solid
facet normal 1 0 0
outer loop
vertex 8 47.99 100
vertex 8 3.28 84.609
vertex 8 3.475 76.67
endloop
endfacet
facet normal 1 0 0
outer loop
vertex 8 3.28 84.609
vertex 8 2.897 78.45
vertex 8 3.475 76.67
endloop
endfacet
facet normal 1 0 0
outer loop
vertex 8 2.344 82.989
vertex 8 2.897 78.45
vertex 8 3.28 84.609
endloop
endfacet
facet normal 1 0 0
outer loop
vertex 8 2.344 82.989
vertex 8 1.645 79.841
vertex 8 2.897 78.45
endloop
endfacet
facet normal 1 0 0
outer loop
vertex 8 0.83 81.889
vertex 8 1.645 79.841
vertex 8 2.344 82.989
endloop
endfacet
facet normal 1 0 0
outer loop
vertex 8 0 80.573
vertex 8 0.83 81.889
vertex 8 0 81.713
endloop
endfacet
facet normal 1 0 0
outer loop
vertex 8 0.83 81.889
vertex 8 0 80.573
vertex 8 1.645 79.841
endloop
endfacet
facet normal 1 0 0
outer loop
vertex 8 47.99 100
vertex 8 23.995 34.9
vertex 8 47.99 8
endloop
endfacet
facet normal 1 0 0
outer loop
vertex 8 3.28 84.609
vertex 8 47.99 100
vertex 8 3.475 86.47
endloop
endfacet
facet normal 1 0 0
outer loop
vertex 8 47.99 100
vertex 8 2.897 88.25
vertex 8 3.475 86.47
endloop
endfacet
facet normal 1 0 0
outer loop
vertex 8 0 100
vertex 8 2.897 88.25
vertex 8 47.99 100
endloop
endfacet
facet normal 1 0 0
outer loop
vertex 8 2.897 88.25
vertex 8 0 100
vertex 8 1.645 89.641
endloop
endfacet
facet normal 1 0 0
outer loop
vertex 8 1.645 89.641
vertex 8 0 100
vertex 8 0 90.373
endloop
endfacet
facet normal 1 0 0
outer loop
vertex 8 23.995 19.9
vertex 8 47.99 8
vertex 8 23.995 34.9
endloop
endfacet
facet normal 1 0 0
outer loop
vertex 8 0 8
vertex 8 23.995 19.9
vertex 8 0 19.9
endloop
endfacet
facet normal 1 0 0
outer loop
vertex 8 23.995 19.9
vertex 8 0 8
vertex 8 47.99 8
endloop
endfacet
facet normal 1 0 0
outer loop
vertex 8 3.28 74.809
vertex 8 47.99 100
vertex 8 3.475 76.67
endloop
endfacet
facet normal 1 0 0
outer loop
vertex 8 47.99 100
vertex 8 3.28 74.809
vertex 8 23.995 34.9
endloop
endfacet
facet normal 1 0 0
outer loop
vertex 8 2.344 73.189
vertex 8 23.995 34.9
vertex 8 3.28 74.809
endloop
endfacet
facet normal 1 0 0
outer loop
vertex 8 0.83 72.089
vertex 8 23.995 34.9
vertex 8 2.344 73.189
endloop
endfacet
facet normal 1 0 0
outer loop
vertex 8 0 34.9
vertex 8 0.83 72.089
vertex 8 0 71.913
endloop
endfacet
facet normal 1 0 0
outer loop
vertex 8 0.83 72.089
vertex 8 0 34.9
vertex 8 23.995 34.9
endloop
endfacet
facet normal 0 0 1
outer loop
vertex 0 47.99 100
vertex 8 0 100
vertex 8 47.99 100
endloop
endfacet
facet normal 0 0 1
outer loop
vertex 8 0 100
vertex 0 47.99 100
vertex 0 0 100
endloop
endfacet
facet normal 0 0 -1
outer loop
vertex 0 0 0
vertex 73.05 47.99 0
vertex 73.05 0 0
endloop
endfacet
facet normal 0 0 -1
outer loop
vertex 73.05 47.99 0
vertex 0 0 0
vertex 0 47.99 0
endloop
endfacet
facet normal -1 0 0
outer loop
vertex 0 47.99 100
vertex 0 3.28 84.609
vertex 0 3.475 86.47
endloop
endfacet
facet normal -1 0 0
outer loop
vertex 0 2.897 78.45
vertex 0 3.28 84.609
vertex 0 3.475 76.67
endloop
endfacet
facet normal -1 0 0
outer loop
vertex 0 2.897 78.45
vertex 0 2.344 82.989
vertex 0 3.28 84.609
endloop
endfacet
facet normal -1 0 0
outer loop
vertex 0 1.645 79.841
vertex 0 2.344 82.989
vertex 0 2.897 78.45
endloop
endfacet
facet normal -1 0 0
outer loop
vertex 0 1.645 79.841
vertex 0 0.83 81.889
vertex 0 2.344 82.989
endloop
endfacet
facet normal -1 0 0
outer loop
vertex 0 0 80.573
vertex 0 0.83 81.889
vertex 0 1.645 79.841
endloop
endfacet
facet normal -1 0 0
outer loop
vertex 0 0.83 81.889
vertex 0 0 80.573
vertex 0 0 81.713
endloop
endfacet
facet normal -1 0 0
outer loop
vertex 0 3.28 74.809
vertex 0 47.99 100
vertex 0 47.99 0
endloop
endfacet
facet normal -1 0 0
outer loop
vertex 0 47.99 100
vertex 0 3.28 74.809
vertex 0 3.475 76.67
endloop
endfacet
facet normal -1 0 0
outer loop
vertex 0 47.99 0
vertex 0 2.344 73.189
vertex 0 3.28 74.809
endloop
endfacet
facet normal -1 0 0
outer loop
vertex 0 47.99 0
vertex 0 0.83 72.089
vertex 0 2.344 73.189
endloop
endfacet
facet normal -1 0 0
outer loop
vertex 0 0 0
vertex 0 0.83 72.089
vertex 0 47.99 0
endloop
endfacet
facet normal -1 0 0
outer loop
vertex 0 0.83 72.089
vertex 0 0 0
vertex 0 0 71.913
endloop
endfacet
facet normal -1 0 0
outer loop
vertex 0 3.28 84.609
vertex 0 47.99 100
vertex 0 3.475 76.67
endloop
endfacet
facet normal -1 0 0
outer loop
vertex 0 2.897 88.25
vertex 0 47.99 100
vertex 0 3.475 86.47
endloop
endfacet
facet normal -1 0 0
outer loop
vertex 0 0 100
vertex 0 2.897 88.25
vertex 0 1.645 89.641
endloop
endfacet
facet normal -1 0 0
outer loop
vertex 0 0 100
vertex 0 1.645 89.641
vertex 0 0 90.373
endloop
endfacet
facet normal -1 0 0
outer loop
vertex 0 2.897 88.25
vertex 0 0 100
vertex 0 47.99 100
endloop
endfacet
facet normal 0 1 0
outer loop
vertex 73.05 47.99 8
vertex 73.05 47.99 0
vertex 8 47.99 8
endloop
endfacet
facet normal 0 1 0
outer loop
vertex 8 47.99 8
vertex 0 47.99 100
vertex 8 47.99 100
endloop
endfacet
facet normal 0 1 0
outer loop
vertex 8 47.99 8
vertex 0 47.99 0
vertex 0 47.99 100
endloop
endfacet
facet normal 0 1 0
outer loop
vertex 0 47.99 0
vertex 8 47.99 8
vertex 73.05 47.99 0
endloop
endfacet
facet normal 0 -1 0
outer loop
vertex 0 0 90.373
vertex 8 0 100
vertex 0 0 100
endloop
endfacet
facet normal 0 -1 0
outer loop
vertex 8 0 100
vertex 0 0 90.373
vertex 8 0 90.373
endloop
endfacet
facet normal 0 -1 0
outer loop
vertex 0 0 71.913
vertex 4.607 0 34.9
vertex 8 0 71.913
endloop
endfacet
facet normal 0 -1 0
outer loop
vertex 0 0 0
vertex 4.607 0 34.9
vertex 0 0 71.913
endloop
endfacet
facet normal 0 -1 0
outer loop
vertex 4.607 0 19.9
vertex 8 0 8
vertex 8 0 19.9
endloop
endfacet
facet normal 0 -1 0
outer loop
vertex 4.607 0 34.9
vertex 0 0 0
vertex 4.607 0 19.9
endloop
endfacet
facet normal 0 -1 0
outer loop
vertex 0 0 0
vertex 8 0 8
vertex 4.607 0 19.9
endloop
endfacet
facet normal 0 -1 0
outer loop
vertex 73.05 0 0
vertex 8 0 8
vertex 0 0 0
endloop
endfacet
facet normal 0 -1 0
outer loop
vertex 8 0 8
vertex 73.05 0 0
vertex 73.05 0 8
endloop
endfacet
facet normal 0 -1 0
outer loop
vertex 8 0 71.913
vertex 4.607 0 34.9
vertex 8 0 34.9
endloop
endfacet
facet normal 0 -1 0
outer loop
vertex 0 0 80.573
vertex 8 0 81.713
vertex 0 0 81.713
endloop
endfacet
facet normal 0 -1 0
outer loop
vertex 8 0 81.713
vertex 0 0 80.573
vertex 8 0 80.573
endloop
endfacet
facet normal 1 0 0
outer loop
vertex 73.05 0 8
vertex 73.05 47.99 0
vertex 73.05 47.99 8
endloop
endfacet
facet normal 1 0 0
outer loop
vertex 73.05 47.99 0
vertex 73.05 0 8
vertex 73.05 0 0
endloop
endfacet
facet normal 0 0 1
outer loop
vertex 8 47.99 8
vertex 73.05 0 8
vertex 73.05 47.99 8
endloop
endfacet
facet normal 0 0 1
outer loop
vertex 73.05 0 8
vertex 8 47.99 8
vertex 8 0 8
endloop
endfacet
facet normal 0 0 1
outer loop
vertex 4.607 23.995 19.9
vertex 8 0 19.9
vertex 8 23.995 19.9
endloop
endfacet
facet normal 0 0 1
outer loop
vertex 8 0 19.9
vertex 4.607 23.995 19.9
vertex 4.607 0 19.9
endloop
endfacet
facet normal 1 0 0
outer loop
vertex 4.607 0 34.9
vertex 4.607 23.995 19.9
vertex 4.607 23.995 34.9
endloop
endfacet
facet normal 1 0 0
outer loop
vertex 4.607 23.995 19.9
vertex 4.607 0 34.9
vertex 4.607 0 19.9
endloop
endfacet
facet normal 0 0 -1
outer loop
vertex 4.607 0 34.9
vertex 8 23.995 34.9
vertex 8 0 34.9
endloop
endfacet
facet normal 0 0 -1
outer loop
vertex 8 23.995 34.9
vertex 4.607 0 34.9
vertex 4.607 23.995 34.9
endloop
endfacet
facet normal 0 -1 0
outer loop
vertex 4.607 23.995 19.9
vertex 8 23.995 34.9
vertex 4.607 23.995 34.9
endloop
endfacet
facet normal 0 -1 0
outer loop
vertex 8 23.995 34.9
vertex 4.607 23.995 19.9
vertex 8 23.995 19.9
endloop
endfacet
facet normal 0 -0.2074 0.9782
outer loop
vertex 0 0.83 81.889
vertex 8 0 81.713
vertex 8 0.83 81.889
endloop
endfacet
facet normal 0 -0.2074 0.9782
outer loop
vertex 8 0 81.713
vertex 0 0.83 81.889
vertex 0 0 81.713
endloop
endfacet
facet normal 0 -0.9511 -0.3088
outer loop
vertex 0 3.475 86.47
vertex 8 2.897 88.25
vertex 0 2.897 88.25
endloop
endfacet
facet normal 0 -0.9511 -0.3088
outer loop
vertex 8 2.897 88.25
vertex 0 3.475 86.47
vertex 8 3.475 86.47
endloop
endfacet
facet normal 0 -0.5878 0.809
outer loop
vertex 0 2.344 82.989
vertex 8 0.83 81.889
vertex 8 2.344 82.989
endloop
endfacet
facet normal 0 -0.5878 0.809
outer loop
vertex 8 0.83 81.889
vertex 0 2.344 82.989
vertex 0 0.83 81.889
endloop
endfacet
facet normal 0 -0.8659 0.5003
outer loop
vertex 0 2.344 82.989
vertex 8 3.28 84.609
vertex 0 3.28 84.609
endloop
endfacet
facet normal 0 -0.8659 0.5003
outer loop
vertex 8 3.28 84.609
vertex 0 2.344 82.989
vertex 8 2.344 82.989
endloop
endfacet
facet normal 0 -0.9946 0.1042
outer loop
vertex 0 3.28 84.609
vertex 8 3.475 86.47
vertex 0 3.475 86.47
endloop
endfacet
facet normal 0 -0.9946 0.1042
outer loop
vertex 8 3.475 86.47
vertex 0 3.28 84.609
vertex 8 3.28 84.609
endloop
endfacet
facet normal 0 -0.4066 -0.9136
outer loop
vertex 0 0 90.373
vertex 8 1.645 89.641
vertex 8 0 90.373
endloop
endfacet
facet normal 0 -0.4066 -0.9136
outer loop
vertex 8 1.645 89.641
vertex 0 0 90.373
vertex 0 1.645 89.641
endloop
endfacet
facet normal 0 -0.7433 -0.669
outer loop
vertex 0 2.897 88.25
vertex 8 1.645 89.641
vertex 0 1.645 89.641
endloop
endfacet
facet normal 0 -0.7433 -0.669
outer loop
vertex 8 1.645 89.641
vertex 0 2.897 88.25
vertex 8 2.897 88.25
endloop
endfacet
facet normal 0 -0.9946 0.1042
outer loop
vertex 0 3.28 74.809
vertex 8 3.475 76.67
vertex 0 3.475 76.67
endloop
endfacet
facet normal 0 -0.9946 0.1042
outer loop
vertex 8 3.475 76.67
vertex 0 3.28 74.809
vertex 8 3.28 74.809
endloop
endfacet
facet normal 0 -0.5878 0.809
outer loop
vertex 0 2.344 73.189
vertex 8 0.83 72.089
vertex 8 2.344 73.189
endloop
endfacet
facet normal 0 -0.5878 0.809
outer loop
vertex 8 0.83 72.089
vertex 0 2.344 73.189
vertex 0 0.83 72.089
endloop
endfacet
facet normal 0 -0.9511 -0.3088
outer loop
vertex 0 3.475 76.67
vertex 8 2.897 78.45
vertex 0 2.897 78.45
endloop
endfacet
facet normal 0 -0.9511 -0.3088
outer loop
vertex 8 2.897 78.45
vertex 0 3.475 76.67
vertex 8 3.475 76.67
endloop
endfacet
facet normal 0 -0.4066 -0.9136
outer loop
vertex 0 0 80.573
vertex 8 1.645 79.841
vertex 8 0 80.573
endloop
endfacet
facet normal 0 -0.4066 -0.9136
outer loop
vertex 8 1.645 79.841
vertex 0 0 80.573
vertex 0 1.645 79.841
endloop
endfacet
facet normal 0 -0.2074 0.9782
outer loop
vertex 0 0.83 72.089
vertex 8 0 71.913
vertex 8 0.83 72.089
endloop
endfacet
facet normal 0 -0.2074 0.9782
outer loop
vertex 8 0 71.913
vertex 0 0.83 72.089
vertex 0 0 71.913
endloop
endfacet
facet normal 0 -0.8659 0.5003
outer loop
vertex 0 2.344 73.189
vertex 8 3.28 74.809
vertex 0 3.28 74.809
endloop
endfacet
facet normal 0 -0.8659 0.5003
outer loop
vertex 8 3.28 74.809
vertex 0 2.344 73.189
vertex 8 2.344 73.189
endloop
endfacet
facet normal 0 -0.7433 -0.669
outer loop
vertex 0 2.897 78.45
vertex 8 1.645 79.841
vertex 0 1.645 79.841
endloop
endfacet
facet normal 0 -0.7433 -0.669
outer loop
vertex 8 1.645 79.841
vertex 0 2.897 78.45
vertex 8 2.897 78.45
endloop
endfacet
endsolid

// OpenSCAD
/* doodle-meta {"version":1,"parameters":{"width":{"label":"Overall width","description":"Changes the body width","unit":"mm","feature":"body_width"},"depth":{"label":"Overall depth","description":"Changes the body depth","unit":"mm","feature":"body_depth"},"height":{"label":"Overall height","description":"Changes the body height","unit":"mm","feature":"body_height"},"backplate_thickness":{"label":"Backplate thickness","description":"Thickness of the vertical backplate","unit":"mm","feature":"backplate"},"base_thickness":{"label":"Base thickness","description":"Thickness of the horizontal base flange","unit":"mm","feature":"base"},"cutout_rect_w":{"label":"Rect cutout width","description":"Width of the top-left rectangular cutout","unit":"mm","feature":"cutout_rect"},"cutout_rect_h":{"label":"Rect cutout height","description":"Height of the top-left rectangular cutout","unit":"mm","feature":"cutout_rect"},"cutout_slot_w":{"label":"Slot width","description":"Width of the vertical slot cutouts","unit":"mm","feature":"cutout_slot"},"cutout_slot_h_top":{"label":"Top slot height","description":"Height of the top-middle slot cutout","unit":"mm","feature":"cutout_slot"},"cutout_slot_h_bot":{"label":"Bottom slot height","description":"Height of the bottom slot cutouts","unit":"mm","feature":"cutout_slot"}},"features":{"body_width":{"kind":"dimension","axis":"x","label":"Overall width"},"body_depth":{"kind":"dimension","axis":"y","label":"Overall depth"},"body_height":{"kind":"dimension","axis":"z","label":"Overall height"},"backplate":{"kind":"region","label":"Vertical backplate","min":[0,0,0],"max":[{"parameter":"backplate_thickness"},{"parameter":"depth"},{"parameter":"height"}]},"base":{"kind":"region","label":"Horizontal base","min":[0,0,0],"max":[{"parameter":"width"},{"parameter":"depth"},{"parameter":"base_thickness"}]},"cutout_rect":{"kind":"region","label":"Top-left rectangle cutout","min":[{"parameter":"width","scale":0.063,"offset":0},{"parameter":"backplate_thickness","offset":-1},{"parameter":"height","scale":0.214,"offset":0}],"max":[{"parameter":"width","scale":0.263,"offset":0},{"parameter":"backplate_thickness","offset":1},{"parameter":"height","scale":0.364,"offset":0}]},"cutout_slot":{"kind":"region","label":"Slot cutouts","min":[{"parameter":"width","scale":0.113,"offset":0},{"parameter":"backplate_thickness","offset":-1},{"parameter":"height","scale":0.088,"offset":0}],"max":[{"parameter":"width","scale":0.838,"offset":0},{"parameter":"backplate_thickness","offset":1},{"parameter":"height","scale":0.866,"offset":0}]}}} */

// --- Parameters ---
width = 73.05;
depth = 47.99;
height = 100.0;
backplate_thickness = 8.0;
base_thickness = 8.0;

// Cutout dimensions (derived from normalized view measurements)
cutout_rect_w = 14.6;
cutout_rect_h = 15.0;
cutout_slot_w = 9.0;
cutout_slot_h_top = 36.0;
cutout_slot_h_bot = 44.0;

// Cutout centers (derived from evaluation missing centroids)
// Front view mapping: X = u * width, Z = (1 - v) * height
rect_cx = 0.163 * width;
rect_cz = (1.0 - 0.726) * height;

slot_top_cx = 0.788 * width;
slot_top_cz = (1.0 - 0.69) * height;

slot_bl_cx = 0.259 * width;
slot_bl_cz = (1.0 - 0.14) * height;

slot_br_cx = 0.561 * width;
slot_br_cz = (1.0 - 0.238) * height;

// --- Modules ---
// Vertical slot (stadium) centered at (cx, cz) in XZ plane, cutting through X (the backplate).
module slot_cutter(w, h, cx, cz) {
    r = w / 2;
    straight = h - w;
    translate([cx, -1, cz])
        rotate([0, 90, 0])
            hull() {
                translate([0, 0,  straight/2]) cylinder(r=r, h=depth+2, center=true);
                translate([0, 0, -straight/2]) cylinder(r=r, h=depth+2, center=true);
            }
}

// Rectangle centered at (cx, cz) in XZ plane, cutting through X (the backplate).
module rect_cutter(w, h, cx, cz) {
    translate([cx, -1, cz])
        rotate([0, 90, 0])
            cube([h, depth + 2, w], center=true);
}

// --- Main Design ---
difference() {
    // 1. Positive Body: L-Shape
    union() {
        // Vertical Backplate (Left side, full height)
        cube([backplate_thickness, depth, height]);
        // Horizontal Base (Bottom, extending right)
        cube([width, depth, base_thickness]);
    }

    // 2. Subtractive Cutouts (Through the backplate, along X)
    rect_cutter(cutout_rect_w, cutout_rect_h, rect_cx, rect_cz);
    slot_cutter(cutout_slot_w, cutout_slot_h_top, slot_top_cx, slot_top_cz);
    slot_cutter(cutout_slot_w, cutout_slot_h_bot, slot_bl_cx, slot_bl_cz);
    slot_cutter(cutout_slot_w, cutout_slot_h_bot, slot_br_cx, slot_br_cz);
}
